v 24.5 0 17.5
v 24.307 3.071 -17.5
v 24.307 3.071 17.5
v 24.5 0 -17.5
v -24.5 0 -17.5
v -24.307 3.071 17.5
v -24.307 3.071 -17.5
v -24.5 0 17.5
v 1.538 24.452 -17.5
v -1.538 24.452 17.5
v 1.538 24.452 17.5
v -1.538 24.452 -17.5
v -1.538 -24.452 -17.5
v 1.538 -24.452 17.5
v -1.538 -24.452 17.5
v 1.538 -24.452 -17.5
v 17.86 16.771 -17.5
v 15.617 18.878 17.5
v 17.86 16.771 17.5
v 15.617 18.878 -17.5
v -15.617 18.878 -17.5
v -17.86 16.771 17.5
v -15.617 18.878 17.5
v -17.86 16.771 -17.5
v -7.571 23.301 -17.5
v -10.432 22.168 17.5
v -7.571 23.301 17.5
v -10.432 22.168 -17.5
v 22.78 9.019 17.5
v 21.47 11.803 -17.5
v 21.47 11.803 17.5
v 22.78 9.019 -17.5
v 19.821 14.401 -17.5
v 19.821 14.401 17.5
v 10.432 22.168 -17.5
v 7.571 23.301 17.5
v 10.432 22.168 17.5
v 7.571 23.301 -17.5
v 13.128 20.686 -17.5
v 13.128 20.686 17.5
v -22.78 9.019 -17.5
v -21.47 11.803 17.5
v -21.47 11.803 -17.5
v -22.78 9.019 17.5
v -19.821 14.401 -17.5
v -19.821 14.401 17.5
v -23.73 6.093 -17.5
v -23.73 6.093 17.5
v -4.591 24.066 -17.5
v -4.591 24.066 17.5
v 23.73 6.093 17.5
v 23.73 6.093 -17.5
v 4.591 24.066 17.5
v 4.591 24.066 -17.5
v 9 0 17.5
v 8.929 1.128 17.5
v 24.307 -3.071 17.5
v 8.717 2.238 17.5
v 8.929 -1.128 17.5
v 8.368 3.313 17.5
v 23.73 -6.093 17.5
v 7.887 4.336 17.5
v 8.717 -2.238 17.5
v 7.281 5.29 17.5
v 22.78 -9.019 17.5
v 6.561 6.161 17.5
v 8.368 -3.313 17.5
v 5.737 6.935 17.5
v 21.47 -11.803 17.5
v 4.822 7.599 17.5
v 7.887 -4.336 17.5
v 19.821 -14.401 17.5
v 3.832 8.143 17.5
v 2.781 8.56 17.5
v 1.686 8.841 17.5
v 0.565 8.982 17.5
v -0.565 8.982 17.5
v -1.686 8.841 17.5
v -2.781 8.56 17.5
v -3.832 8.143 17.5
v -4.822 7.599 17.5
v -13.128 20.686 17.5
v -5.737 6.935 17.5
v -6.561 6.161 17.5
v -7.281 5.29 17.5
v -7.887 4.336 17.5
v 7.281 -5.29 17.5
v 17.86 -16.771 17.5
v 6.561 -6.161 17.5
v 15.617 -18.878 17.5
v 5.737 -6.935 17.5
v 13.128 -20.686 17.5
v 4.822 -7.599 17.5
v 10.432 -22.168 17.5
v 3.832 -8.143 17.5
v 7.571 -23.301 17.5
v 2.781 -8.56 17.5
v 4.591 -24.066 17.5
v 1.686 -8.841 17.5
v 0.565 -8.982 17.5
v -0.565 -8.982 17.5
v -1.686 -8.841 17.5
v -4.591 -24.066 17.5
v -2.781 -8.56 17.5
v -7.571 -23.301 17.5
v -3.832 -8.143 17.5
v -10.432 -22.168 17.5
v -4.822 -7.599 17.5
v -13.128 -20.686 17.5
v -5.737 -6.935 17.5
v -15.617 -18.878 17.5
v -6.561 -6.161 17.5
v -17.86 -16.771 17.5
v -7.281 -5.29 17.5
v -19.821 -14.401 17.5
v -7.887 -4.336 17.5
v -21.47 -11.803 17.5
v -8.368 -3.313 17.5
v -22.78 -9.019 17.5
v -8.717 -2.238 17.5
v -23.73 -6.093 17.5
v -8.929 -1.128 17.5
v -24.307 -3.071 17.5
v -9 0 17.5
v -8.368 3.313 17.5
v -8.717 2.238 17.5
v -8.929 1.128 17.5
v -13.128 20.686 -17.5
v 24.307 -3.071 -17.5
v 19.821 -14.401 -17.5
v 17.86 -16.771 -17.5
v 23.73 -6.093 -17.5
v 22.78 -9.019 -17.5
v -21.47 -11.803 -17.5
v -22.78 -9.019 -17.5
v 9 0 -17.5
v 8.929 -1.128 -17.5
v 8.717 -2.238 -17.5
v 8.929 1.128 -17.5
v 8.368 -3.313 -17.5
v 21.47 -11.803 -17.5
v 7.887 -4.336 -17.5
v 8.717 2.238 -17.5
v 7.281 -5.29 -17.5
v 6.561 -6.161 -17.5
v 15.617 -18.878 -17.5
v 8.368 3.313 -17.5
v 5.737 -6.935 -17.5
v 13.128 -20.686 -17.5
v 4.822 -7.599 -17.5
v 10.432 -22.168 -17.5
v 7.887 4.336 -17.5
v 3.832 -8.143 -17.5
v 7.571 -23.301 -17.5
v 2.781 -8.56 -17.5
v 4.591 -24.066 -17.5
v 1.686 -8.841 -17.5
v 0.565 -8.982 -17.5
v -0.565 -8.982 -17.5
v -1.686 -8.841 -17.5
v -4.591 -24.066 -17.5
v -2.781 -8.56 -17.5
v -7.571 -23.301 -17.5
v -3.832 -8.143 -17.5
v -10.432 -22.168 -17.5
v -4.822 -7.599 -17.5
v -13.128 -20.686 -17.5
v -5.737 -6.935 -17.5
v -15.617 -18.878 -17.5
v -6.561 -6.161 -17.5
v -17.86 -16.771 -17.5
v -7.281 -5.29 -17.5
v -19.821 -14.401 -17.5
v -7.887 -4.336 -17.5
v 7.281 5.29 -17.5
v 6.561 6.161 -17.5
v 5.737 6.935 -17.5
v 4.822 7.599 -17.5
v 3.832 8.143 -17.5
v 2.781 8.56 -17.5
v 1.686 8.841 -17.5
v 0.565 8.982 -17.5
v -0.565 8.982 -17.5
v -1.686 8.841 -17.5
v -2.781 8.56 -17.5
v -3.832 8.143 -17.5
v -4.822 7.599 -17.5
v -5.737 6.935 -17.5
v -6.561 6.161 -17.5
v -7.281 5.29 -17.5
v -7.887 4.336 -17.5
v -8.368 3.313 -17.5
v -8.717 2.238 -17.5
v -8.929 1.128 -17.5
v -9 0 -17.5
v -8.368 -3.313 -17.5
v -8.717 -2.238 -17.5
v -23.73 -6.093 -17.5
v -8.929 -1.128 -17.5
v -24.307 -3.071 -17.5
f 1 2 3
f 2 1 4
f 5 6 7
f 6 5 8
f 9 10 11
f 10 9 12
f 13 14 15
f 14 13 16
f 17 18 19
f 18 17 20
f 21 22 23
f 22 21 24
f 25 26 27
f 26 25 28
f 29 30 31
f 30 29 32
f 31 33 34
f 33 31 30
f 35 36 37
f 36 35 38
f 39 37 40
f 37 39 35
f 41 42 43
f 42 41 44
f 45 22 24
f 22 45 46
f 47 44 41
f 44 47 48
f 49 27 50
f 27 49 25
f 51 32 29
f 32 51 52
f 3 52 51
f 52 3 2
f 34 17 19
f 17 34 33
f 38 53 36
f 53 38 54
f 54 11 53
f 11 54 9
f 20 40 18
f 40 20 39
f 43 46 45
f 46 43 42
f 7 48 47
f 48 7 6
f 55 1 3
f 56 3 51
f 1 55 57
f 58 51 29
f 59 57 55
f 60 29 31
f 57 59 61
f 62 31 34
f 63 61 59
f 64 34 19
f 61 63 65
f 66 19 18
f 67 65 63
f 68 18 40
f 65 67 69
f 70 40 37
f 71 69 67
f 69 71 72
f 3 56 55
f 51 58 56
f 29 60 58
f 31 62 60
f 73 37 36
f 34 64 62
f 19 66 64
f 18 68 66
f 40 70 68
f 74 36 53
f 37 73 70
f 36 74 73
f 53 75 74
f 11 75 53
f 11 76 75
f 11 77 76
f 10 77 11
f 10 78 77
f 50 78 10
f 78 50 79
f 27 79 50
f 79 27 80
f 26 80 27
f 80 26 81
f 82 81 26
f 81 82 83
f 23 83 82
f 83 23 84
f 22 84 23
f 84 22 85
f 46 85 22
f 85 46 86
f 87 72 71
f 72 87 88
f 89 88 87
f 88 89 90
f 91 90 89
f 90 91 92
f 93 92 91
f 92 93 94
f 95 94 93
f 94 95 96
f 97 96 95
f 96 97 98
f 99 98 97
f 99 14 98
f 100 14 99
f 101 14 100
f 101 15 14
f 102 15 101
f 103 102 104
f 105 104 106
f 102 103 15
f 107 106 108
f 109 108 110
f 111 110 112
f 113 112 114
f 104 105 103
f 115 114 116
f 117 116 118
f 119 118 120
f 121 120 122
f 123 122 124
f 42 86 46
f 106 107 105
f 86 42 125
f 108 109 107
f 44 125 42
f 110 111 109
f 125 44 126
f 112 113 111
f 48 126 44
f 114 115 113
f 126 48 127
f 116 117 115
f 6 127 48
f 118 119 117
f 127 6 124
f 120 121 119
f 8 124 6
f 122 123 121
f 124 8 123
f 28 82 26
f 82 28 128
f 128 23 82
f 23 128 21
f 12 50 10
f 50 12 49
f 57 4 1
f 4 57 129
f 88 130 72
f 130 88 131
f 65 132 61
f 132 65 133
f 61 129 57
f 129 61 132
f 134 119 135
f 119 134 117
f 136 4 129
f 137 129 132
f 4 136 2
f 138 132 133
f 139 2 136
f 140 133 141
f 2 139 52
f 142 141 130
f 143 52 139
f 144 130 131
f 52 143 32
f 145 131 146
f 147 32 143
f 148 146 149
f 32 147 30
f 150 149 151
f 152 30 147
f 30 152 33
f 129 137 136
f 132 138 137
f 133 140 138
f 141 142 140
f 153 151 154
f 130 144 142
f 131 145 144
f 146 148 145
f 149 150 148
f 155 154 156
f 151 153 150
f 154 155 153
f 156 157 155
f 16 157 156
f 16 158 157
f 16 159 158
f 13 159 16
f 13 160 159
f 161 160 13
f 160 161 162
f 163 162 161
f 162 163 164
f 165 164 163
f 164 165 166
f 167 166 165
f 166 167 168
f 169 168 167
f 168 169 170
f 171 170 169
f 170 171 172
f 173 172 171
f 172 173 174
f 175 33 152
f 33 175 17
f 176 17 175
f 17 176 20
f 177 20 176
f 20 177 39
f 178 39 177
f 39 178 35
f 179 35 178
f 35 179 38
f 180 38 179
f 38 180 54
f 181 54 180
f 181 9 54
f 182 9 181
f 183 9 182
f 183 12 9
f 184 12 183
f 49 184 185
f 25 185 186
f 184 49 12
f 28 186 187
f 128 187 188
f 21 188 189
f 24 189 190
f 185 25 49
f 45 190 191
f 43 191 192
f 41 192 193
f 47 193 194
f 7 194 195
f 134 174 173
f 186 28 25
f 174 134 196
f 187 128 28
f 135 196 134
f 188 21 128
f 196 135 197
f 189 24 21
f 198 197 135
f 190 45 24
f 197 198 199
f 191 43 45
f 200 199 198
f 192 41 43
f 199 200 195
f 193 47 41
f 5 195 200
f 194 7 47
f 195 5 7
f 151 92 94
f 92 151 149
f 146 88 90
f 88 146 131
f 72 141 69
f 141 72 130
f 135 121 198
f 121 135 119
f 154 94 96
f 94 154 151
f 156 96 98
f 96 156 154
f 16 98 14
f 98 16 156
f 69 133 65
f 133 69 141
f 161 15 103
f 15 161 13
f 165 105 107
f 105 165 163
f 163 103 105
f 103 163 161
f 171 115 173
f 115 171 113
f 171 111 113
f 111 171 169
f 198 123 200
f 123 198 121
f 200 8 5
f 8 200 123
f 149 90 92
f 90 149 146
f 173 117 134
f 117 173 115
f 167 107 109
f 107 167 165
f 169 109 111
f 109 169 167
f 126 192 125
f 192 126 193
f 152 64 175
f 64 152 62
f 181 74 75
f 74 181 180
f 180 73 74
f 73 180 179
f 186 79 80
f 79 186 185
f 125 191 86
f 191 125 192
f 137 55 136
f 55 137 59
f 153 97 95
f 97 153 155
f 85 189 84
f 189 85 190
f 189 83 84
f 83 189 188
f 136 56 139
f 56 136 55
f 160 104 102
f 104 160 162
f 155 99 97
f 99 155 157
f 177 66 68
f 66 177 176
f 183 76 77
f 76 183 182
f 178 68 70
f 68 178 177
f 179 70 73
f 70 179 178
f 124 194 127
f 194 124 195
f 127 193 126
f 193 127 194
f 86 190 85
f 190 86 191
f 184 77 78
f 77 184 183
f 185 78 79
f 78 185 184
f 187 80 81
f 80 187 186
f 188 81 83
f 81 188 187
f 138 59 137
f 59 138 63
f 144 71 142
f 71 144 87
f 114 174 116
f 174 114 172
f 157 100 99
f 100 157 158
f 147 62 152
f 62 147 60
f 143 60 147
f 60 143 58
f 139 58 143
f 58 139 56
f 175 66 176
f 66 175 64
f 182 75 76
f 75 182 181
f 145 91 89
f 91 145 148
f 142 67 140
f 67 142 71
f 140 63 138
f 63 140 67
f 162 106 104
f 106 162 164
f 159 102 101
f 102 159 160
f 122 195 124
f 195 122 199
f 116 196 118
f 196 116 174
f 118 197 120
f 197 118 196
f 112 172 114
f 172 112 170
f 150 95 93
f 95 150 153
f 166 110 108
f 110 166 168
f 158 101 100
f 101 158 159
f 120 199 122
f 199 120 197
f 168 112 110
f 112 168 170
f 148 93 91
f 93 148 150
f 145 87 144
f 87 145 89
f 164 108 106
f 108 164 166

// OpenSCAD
$fn = 50;


difference() {
	union() {
		translate(v = [0, 0, -17.5000000000]) {
			cylinder(h = 35, r = 24.5000000000);
		}
	}
	union() {
		translate(v = [0, 0, -100.0000000000]) {
			cylinder(h = 200, r = 9);
		}
	}
}
